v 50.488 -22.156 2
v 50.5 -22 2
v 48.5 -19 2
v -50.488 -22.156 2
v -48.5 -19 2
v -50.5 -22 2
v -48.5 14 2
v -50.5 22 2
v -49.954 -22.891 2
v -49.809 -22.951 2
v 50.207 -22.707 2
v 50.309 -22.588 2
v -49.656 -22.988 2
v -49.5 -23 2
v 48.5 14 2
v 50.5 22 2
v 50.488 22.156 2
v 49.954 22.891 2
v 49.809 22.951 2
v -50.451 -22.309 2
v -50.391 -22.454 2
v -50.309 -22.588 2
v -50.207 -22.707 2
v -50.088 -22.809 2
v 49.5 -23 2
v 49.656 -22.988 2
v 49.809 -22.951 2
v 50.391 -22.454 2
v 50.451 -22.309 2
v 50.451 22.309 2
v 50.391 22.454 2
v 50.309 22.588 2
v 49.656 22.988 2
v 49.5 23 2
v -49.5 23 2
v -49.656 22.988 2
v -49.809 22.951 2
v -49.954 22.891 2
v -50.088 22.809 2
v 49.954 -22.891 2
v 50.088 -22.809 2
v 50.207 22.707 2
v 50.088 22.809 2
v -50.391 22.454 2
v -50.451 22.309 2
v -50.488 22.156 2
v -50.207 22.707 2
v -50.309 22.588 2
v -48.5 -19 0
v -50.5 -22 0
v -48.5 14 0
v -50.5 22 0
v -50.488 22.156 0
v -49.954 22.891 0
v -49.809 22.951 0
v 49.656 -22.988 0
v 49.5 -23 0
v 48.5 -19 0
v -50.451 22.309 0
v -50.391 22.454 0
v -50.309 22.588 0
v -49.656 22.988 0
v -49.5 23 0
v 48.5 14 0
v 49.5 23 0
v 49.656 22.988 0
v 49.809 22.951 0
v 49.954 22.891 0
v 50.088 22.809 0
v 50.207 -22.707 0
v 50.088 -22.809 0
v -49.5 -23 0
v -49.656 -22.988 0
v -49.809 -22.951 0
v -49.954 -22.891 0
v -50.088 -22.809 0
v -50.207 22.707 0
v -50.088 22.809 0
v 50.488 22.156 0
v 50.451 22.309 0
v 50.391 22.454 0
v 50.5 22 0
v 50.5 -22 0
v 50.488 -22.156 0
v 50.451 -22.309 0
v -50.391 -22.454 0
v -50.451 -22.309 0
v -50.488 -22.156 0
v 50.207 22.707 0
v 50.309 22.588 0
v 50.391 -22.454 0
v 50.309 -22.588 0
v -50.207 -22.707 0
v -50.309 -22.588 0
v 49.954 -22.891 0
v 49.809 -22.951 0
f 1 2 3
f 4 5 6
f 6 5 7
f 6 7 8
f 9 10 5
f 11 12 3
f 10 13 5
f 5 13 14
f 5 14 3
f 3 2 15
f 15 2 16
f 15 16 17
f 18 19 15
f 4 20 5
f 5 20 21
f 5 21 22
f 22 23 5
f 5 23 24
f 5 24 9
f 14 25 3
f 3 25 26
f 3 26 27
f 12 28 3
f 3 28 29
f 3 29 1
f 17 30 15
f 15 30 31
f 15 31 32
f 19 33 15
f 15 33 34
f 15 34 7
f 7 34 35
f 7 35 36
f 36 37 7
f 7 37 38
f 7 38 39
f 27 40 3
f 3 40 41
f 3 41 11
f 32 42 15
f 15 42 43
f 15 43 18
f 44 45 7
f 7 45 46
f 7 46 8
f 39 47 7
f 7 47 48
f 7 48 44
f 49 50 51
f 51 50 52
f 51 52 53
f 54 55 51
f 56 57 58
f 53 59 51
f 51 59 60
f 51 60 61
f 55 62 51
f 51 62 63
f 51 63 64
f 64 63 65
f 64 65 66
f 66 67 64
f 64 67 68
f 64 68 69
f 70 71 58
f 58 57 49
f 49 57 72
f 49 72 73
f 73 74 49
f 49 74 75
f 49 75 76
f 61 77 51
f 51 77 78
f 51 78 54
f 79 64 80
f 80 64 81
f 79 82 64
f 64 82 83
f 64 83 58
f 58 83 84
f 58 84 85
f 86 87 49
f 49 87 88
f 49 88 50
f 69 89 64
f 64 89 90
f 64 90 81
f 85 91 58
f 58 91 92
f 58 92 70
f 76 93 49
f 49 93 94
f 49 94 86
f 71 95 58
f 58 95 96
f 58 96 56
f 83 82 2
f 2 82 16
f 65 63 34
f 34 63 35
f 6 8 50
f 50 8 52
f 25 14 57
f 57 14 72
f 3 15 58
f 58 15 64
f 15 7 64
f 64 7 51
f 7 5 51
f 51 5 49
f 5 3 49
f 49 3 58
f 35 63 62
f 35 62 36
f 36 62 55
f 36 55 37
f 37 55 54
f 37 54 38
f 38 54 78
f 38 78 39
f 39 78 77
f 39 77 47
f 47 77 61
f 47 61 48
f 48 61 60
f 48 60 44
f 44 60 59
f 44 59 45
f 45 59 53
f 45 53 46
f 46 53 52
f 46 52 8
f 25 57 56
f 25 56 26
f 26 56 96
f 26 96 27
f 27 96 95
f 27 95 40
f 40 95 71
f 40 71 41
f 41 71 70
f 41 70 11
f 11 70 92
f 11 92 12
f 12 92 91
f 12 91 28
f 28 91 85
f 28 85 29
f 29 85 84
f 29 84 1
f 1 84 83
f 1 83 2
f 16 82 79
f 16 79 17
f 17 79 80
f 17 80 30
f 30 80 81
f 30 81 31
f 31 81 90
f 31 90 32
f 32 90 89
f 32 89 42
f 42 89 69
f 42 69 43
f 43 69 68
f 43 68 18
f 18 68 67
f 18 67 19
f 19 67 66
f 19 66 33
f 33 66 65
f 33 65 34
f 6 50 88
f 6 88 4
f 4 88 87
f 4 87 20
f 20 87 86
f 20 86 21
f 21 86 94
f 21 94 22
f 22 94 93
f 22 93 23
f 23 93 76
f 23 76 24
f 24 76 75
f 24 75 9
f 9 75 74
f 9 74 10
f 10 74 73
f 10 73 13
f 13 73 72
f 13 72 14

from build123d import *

# Parameters (mm, degrees)
SKETCH_1_W      = 101
SKETCH_1_H      = 46
SKETCH_1_W_2    = 97
SKETCH_1_H_2    = 33
EXTRUDE_1_DEPTH = 2
FILLET_1_R      = 1
FILLET_2_R      = 1


with BuildPart() as part:
    # 草图1 → 凸台-拉伸1 (new body)
    with BuildSketch(Plane.XY):
        Rectangle(SKETCH_1_W, SKETCH_1_H)
        with Locations((0, -2.5)):
            Rectangle(SKETCH_1_W_2, SKETCH_1_H_2, mode=Mode.SUBTRACT)
    extrude(amount=EXTRUDE_1_DEPTH)

    # 圆角1
    fillet_1_edges = [part.edges().sort_by_distance(p)[0] for p in [
        (-50.5, 23, 1),
    ]]
    fillet(fillet_1_edges, radius=FILLET_1_R)

    # 圆角2
    fillet_2_edges = [part.edges().sort_by_distance(p)[0] for p in [
        (50.5, -23, 1),
        (-50.5, -23, 1),
        (50.5, 23, 1),
    ]]
    fillet(fillet_2_edges, radius=FILLET_2_R)


solid = part.part
